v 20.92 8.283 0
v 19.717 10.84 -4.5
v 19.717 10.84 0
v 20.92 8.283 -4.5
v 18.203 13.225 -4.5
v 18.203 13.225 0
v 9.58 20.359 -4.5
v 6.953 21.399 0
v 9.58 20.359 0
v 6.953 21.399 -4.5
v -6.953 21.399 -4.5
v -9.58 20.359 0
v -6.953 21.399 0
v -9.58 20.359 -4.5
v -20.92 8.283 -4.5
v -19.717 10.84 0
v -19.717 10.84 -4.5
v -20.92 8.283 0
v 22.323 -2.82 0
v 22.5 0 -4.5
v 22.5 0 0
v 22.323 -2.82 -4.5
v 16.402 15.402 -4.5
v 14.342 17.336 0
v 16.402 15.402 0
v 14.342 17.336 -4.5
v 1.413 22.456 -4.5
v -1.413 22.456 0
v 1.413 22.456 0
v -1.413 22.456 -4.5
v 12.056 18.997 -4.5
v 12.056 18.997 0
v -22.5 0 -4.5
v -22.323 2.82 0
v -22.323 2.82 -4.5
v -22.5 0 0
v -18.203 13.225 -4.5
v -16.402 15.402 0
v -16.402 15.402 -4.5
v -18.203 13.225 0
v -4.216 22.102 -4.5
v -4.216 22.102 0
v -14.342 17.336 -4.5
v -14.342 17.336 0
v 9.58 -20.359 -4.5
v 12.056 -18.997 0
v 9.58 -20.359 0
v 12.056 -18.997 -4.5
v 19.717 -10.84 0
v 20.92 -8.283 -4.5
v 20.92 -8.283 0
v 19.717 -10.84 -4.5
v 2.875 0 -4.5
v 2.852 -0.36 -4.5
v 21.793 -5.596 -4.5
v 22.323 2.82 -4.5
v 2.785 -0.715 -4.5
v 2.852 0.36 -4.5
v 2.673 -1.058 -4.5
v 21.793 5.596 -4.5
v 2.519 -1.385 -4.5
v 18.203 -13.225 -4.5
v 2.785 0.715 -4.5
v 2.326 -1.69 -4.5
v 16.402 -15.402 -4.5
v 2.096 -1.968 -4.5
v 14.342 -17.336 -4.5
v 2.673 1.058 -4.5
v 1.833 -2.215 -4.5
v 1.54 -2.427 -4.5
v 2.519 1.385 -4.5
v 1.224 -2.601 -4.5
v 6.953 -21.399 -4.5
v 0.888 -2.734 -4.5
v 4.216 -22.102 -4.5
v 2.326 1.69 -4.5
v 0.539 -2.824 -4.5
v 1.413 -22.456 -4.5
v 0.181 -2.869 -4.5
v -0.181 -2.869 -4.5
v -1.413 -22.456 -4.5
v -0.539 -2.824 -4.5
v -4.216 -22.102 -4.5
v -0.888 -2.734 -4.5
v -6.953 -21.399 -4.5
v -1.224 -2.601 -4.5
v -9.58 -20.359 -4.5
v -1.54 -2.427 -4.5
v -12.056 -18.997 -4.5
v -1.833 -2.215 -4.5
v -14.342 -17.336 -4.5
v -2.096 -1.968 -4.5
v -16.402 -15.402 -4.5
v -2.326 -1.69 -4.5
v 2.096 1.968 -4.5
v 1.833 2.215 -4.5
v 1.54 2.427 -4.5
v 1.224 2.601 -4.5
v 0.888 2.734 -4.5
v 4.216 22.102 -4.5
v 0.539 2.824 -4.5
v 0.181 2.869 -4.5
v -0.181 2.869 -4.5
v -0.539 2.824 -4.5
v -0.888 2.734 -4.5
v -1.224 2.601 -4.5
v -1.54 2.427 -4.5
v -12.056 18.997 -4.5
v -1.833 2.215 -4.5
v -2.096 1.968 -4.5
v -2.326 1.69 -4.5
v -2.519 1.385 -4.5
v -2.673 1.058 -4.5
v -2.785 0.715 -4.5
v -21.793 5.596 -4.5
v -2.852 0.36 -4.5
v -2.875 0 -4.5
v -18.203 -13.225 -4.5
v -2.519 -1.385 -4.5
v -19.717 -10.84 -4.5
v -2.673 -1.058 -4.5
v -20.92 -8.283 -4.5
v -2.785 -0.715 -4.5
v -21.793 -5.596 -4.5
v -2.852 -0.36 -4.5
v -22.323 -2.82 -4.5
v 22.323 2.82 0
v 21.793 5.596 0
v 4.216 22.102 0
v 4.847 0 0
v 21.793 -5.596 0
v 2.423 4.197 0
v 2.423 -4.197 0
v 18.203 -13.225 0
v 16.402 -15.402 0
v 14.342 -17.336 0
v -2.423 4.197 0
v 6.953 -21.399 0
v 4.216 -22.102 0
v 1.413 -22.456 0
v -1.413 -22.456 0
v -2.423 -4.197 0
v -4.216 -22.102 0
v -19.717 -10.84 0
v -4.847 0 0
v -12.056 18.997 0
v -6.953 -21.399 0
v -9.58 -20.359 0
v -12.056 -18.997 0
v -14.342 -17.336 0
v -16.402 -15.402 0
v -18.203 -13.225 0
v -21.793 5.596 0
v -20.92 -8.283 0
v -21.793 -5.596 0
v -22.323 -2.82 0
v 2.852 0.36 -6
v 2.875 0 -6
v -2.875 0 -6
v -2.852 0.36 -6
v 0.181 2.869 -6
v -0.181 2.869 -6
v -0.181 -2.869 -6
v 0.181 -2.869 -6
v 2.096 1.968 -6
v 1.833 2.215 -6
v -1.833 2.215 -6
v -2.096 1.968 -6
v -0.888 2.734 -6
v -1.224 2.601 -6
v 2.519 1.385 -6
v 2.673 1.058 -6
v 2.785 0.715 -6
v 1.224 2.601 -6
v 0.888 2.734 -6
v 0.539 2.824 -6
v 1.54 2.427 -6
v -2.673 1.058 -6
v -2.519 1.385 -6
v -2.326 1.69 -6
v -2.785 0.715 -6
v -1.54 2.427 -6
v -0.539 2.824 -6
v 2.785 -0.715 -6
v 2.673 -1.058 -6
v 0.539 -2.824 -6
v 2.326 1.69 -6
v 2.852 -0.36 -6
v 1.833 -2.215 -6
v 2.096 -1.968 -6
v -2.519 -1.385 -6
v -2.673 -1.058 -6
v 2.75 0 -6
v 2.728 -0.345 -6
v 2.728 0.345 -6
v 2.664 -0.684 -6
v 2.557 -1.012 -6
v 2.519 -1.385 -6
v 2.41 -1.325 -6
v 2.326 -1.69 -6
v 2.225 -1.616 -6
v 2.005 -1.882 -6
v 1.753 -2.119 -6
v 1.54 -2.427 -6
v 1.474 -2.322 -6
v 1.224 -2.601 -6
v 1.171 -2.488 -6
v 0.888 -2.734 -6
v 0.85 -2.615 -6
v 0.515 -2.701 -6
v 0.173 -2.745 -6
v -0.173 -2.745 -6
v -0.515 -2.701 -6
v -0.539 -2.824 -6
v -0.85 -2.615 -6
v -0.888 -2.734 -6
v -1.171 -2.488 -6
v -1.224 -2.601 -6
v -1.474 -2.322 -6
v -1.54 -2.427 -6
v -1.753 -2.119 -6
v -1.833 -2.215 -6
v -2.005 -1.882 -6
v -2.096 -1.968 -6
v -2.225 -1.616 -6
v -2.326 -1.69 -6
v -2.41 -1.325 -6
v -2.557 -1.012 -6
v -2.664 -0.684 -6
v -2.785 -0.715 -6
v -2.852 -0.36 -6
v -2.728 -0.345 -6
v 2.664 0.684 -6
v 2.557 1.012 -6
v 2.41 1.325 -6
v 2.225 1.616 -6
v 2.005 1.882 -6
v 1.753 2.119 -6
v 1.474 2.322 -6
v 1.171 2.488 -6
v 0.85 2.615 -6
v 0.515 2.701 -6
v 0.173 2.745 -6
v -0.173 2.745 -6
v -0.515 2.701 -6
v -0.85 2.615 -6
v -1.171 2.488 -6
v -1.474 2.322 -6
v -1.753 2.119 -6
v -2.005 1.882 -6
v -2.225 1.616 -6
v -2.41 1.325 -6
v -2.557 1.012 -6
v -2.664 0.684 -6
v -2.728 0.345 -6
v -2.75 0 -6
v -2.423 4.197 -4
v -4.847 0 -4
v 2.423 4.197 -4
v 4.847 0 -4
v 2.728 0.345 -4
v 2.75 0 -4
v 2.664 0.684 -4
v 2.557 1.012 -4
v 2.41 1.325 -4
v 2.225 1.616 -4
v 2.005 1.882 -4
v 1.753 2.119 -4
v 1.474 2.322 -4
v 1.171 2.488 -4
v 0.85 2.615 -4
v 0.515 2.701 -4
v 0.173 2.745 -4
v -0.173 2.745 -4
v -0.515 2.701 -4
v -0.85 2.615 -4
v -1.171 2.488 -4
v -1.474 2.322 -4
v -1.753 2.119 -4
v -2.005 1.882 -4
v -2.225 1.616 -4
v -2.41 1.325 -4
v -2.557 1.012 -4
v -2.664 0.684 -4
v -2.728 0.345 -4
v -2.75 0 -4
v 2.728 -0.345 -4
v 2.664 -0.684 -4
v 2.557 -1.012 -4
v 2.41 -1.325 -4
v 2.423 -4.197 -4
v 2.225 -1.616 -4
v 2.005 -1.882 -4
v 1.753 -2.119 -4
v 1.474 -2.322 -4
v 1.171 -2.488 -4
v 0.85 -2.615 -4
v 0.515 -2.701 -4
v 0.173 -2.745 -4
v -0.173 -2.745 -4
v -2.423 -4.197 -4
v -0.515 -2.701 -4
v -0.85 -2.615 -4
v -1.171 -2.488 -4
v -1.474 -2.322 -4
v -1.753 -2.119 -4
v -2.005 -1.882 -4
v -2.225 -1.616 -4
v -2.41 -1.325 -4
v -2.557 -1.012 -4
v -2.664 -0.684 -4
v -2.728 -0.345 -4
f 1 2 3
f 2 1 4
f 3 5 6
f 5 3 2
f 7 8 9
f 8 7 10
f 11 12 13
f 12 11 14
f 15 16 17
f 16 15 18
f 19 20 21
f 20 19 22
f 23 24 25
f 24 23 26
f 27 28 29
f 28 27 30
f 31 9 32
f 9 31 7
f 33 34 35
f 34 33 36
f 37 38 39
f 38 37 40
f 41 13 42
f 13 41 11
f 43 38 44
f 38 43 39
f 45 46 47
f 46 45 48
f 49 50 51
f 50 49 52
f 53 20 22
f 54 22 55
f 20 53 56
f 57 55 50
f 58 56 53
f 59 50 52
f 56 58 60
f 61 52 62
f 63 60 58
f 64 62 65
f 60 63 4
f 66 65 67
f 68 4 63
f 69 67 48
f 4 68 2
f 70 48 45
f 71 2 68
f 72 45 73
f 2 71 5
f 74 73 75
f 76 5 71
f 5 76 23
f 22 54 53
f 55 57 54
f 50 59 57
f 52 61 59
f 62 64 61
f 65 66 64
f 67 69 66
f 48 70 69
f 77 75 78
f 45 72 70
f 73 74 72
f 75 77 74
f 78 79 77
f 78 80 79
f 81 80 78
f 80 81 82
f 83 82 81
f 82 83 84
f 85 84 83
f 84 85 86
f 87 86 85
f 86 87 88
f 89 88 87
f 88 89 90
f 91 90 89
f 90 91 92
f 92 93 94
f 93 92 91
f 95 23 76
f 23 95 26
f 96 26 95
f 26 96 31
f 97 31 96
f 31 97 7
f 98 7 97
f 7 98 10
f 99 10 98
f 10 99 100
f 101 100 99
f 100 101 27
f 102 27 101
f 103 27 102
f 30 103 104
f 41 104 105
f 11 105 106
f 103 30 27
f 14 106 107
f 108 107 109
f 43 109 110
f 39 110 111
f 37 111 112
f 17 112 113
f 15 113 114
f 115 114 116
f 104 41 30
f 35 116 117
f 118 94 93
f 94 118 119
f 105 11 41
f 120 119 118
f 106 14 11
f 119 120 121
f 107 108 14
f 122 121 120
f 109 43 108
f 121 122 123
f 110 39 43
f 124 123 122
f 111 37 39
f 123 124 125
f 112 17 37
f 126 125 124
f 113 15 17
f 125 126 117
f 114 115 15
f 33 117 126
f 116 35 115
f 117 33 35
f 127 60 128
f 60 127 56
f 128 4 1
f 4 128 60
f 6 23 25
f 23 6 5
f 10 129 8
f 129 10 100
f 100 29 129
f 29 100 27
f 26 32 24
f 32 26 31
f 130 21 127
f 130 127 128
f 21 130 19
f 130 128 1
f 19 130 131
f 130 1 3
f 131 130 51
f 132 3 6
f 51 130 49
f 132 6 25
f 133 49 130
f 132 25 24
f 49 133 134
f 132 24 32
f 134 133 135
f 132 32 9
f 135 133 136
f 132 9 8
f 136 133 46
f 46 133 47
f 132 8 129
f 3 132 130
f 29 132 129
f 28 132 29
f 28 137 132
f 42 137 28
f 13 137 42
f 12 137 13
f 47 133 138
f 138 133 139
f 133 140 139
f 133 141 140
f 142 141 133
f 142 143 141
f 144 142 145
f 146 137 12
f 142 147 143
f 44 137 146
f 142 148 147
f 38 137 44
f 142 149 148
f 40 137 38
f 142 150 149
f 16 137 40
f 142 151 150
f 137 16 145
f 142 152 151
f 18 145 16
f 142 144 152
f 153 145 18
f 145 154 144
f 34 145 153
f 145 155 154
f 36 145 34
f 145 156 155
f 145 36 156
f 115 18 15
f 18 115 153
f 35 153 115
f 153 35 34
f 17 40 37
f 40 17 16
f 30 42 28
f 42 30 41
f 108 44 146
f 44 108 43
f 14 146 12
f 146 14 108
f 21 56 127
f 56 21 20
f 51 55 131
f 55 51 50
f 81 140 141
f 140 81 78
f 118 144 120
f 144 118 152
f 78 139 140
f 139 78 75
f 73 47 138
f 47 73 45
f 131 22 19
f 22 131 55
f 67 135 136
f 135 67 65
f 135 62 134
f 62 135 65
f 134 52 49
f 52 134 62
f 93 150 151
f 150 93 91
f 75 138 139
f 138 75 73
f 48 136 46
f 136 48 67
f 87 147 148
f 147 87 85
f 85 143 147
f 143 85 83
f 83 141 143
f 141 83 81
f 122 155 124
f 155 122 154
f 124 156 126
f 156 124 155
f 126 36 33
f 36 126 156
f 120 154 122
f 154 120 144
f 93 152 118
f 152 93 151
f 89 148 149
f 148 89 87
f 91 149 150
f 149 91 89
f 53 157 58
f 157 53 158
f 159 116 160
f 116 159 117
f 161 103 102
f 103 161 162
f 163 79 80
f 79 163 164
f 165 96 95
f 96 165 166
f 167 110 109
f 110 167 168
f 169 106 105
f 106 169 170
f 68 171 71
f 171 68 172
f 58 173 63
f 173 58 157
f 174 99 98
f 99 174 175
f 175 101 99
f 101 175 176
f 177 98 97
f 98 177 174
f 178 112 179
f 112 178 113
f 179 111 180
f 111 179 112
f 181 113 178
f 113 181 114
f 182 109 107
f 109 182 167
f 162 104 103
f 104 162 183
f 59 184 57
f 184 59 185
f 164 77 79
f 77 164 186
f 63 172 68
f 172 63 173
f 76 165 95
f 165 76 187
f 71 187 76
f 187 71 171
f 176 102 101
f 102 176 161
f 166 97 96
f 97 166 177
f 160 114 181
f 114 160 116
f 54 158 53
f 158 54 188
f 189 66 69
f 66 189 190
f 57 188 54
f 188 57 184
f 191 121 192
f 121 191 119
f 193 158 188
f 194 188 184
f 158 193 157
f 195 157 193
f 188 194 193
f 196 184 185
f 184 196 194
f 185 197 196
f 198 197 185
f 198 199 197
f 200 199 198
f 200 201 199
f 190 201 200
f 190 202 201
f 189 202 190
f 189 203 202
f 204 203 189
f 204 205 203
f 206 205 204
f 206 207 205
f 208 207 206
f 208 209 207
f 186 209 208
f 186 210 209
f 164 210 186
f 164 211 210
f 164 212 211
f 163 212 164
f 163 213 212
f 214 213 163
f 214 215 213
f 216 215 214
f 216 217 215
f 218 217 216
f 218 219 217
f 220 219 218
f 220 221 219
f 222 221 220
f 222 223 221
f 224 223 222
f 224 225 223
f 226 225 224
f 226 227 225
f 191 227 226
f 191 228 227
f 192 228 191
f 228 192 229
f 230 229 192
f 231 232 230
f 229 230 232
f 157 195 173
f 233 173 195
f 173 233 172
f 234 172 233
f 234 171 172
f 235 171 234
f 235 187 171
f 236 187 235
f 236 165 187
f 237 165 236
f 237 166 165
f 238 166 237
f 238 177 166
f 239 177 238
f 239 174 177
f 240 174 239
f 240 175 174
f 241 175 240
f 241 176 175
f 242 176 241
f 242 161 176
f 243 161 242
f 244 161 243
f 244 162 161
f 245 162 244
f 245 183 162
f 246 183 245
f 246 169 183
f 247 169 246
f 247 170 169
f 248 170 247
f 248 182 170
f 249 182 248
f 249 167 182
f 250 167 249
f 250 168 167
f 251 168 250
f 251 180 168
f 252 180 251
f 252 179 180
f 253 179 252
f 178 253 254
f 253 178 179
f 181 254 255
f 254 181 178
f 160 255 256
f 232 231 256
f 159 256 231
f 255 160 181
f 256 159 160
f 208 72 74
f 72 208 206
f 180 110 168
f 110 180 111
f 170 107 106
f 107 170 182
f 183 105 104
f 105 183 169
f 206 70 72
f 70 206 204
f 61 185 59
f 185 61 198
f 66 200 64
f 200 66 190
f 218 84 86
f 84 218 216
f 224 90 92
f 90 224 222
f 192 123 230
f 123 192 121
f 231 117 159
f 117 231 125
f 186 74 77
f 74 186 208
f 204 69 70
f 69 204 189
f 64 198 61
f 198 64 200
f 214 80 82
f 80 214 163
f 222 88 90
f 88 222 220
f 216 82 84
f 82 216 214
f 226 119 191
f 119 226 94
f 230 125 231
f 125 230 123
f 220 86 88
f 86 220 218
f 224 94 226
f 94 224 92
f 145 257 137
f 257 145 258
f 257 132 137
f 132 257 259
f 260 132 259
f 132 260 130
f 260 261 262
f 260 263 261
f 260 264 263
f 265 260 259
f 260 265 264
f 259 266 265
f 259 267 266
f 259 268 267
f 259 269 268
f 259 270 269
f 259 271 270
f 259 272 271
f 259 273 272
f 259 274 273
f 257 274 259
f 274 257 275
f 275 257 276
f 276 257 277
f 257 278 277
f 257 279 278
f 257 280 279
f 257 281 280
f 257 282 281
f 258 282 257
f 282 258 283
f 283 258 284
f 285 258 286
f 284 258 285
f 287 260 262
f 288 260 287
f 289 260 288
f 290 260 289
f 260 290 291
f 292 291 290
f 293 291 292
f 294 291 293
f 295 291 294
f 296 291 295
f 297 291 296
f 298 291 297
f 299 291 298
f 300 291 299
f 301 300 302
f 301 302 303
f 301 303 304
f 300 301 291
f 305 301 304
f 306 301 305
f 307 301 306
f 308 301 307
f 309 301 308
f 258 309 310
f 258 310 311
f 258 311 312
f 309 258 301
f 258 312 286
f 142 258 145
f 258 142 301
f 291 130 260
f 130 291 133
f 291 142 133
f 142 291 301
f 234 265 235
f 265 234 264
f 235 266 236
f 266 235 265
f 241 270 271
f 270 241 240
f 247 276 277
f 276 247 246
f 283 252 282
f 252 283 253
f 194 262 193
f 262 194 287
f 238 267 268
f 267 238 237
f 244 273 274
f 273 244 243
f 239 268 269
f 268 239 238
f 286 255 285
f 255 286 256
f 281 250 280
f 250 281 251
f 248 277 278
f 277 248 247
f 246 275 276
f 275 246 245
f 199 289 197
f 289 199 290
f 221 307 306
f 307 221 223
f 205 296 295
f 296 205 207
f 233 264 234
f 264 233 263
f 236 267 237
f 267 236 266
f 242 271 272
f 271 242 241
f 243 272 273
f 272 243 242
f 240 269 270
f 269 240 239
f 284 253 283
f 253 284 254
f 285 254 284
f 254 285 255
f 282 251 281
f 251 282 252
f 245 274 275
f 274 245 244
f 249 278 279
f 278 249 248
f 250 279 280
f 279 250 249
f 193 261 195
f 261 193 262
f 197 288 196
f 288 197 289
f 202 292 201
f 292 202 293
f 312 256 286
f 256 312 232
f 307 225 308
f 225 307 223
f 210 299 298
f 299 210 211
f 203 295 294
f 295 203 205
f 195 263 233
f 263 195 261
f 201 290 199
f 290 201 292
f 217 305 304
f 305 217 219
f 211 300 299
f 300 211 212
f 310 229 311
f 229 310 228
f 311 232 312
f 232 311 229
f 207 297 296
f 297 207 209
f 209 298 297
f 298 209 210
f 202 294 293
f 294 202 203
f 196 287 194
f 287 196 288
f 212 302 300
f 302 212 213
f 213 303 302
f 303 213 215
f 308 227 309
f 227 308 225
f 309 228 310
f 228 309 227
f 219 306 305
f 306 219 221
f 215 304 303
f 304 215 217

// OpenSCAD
$fn = 50;

difference() {
	union() {
		translate(v = [0, 0, -4.5]) {
			cylinder(h = 4.5, r = 22.5);
		}
		#translate(v = [0, 0, -6.0]) {
			cylinder(h = 6, r = 2.875);
		}
	}
	union() {
		translate(v = [0, 0, 0]) {
			rotate(a = [0, 0, 0]) {
				difference() {
					union() {
						translate(v = [0, 0, -4]) {
							linear_extrude(height = 4) {
								polygon(points = [[4.8468, 0.0], [2.4234000000000004, 4.197451927062417], [-2.423399999999999, 4.197451927062417], [-4.8468, 5.935618106107392e-16], [-2.423400000000002, -4.197451927062416], [2.423399999999997, -4.197451927062419]]);
							}
						}
					}
					union();
				}
			}
		}
		#translate(v = [0, 0, -100.0]) {
			cylinder(h = 200, r = 2.75);
		}
	}
}
